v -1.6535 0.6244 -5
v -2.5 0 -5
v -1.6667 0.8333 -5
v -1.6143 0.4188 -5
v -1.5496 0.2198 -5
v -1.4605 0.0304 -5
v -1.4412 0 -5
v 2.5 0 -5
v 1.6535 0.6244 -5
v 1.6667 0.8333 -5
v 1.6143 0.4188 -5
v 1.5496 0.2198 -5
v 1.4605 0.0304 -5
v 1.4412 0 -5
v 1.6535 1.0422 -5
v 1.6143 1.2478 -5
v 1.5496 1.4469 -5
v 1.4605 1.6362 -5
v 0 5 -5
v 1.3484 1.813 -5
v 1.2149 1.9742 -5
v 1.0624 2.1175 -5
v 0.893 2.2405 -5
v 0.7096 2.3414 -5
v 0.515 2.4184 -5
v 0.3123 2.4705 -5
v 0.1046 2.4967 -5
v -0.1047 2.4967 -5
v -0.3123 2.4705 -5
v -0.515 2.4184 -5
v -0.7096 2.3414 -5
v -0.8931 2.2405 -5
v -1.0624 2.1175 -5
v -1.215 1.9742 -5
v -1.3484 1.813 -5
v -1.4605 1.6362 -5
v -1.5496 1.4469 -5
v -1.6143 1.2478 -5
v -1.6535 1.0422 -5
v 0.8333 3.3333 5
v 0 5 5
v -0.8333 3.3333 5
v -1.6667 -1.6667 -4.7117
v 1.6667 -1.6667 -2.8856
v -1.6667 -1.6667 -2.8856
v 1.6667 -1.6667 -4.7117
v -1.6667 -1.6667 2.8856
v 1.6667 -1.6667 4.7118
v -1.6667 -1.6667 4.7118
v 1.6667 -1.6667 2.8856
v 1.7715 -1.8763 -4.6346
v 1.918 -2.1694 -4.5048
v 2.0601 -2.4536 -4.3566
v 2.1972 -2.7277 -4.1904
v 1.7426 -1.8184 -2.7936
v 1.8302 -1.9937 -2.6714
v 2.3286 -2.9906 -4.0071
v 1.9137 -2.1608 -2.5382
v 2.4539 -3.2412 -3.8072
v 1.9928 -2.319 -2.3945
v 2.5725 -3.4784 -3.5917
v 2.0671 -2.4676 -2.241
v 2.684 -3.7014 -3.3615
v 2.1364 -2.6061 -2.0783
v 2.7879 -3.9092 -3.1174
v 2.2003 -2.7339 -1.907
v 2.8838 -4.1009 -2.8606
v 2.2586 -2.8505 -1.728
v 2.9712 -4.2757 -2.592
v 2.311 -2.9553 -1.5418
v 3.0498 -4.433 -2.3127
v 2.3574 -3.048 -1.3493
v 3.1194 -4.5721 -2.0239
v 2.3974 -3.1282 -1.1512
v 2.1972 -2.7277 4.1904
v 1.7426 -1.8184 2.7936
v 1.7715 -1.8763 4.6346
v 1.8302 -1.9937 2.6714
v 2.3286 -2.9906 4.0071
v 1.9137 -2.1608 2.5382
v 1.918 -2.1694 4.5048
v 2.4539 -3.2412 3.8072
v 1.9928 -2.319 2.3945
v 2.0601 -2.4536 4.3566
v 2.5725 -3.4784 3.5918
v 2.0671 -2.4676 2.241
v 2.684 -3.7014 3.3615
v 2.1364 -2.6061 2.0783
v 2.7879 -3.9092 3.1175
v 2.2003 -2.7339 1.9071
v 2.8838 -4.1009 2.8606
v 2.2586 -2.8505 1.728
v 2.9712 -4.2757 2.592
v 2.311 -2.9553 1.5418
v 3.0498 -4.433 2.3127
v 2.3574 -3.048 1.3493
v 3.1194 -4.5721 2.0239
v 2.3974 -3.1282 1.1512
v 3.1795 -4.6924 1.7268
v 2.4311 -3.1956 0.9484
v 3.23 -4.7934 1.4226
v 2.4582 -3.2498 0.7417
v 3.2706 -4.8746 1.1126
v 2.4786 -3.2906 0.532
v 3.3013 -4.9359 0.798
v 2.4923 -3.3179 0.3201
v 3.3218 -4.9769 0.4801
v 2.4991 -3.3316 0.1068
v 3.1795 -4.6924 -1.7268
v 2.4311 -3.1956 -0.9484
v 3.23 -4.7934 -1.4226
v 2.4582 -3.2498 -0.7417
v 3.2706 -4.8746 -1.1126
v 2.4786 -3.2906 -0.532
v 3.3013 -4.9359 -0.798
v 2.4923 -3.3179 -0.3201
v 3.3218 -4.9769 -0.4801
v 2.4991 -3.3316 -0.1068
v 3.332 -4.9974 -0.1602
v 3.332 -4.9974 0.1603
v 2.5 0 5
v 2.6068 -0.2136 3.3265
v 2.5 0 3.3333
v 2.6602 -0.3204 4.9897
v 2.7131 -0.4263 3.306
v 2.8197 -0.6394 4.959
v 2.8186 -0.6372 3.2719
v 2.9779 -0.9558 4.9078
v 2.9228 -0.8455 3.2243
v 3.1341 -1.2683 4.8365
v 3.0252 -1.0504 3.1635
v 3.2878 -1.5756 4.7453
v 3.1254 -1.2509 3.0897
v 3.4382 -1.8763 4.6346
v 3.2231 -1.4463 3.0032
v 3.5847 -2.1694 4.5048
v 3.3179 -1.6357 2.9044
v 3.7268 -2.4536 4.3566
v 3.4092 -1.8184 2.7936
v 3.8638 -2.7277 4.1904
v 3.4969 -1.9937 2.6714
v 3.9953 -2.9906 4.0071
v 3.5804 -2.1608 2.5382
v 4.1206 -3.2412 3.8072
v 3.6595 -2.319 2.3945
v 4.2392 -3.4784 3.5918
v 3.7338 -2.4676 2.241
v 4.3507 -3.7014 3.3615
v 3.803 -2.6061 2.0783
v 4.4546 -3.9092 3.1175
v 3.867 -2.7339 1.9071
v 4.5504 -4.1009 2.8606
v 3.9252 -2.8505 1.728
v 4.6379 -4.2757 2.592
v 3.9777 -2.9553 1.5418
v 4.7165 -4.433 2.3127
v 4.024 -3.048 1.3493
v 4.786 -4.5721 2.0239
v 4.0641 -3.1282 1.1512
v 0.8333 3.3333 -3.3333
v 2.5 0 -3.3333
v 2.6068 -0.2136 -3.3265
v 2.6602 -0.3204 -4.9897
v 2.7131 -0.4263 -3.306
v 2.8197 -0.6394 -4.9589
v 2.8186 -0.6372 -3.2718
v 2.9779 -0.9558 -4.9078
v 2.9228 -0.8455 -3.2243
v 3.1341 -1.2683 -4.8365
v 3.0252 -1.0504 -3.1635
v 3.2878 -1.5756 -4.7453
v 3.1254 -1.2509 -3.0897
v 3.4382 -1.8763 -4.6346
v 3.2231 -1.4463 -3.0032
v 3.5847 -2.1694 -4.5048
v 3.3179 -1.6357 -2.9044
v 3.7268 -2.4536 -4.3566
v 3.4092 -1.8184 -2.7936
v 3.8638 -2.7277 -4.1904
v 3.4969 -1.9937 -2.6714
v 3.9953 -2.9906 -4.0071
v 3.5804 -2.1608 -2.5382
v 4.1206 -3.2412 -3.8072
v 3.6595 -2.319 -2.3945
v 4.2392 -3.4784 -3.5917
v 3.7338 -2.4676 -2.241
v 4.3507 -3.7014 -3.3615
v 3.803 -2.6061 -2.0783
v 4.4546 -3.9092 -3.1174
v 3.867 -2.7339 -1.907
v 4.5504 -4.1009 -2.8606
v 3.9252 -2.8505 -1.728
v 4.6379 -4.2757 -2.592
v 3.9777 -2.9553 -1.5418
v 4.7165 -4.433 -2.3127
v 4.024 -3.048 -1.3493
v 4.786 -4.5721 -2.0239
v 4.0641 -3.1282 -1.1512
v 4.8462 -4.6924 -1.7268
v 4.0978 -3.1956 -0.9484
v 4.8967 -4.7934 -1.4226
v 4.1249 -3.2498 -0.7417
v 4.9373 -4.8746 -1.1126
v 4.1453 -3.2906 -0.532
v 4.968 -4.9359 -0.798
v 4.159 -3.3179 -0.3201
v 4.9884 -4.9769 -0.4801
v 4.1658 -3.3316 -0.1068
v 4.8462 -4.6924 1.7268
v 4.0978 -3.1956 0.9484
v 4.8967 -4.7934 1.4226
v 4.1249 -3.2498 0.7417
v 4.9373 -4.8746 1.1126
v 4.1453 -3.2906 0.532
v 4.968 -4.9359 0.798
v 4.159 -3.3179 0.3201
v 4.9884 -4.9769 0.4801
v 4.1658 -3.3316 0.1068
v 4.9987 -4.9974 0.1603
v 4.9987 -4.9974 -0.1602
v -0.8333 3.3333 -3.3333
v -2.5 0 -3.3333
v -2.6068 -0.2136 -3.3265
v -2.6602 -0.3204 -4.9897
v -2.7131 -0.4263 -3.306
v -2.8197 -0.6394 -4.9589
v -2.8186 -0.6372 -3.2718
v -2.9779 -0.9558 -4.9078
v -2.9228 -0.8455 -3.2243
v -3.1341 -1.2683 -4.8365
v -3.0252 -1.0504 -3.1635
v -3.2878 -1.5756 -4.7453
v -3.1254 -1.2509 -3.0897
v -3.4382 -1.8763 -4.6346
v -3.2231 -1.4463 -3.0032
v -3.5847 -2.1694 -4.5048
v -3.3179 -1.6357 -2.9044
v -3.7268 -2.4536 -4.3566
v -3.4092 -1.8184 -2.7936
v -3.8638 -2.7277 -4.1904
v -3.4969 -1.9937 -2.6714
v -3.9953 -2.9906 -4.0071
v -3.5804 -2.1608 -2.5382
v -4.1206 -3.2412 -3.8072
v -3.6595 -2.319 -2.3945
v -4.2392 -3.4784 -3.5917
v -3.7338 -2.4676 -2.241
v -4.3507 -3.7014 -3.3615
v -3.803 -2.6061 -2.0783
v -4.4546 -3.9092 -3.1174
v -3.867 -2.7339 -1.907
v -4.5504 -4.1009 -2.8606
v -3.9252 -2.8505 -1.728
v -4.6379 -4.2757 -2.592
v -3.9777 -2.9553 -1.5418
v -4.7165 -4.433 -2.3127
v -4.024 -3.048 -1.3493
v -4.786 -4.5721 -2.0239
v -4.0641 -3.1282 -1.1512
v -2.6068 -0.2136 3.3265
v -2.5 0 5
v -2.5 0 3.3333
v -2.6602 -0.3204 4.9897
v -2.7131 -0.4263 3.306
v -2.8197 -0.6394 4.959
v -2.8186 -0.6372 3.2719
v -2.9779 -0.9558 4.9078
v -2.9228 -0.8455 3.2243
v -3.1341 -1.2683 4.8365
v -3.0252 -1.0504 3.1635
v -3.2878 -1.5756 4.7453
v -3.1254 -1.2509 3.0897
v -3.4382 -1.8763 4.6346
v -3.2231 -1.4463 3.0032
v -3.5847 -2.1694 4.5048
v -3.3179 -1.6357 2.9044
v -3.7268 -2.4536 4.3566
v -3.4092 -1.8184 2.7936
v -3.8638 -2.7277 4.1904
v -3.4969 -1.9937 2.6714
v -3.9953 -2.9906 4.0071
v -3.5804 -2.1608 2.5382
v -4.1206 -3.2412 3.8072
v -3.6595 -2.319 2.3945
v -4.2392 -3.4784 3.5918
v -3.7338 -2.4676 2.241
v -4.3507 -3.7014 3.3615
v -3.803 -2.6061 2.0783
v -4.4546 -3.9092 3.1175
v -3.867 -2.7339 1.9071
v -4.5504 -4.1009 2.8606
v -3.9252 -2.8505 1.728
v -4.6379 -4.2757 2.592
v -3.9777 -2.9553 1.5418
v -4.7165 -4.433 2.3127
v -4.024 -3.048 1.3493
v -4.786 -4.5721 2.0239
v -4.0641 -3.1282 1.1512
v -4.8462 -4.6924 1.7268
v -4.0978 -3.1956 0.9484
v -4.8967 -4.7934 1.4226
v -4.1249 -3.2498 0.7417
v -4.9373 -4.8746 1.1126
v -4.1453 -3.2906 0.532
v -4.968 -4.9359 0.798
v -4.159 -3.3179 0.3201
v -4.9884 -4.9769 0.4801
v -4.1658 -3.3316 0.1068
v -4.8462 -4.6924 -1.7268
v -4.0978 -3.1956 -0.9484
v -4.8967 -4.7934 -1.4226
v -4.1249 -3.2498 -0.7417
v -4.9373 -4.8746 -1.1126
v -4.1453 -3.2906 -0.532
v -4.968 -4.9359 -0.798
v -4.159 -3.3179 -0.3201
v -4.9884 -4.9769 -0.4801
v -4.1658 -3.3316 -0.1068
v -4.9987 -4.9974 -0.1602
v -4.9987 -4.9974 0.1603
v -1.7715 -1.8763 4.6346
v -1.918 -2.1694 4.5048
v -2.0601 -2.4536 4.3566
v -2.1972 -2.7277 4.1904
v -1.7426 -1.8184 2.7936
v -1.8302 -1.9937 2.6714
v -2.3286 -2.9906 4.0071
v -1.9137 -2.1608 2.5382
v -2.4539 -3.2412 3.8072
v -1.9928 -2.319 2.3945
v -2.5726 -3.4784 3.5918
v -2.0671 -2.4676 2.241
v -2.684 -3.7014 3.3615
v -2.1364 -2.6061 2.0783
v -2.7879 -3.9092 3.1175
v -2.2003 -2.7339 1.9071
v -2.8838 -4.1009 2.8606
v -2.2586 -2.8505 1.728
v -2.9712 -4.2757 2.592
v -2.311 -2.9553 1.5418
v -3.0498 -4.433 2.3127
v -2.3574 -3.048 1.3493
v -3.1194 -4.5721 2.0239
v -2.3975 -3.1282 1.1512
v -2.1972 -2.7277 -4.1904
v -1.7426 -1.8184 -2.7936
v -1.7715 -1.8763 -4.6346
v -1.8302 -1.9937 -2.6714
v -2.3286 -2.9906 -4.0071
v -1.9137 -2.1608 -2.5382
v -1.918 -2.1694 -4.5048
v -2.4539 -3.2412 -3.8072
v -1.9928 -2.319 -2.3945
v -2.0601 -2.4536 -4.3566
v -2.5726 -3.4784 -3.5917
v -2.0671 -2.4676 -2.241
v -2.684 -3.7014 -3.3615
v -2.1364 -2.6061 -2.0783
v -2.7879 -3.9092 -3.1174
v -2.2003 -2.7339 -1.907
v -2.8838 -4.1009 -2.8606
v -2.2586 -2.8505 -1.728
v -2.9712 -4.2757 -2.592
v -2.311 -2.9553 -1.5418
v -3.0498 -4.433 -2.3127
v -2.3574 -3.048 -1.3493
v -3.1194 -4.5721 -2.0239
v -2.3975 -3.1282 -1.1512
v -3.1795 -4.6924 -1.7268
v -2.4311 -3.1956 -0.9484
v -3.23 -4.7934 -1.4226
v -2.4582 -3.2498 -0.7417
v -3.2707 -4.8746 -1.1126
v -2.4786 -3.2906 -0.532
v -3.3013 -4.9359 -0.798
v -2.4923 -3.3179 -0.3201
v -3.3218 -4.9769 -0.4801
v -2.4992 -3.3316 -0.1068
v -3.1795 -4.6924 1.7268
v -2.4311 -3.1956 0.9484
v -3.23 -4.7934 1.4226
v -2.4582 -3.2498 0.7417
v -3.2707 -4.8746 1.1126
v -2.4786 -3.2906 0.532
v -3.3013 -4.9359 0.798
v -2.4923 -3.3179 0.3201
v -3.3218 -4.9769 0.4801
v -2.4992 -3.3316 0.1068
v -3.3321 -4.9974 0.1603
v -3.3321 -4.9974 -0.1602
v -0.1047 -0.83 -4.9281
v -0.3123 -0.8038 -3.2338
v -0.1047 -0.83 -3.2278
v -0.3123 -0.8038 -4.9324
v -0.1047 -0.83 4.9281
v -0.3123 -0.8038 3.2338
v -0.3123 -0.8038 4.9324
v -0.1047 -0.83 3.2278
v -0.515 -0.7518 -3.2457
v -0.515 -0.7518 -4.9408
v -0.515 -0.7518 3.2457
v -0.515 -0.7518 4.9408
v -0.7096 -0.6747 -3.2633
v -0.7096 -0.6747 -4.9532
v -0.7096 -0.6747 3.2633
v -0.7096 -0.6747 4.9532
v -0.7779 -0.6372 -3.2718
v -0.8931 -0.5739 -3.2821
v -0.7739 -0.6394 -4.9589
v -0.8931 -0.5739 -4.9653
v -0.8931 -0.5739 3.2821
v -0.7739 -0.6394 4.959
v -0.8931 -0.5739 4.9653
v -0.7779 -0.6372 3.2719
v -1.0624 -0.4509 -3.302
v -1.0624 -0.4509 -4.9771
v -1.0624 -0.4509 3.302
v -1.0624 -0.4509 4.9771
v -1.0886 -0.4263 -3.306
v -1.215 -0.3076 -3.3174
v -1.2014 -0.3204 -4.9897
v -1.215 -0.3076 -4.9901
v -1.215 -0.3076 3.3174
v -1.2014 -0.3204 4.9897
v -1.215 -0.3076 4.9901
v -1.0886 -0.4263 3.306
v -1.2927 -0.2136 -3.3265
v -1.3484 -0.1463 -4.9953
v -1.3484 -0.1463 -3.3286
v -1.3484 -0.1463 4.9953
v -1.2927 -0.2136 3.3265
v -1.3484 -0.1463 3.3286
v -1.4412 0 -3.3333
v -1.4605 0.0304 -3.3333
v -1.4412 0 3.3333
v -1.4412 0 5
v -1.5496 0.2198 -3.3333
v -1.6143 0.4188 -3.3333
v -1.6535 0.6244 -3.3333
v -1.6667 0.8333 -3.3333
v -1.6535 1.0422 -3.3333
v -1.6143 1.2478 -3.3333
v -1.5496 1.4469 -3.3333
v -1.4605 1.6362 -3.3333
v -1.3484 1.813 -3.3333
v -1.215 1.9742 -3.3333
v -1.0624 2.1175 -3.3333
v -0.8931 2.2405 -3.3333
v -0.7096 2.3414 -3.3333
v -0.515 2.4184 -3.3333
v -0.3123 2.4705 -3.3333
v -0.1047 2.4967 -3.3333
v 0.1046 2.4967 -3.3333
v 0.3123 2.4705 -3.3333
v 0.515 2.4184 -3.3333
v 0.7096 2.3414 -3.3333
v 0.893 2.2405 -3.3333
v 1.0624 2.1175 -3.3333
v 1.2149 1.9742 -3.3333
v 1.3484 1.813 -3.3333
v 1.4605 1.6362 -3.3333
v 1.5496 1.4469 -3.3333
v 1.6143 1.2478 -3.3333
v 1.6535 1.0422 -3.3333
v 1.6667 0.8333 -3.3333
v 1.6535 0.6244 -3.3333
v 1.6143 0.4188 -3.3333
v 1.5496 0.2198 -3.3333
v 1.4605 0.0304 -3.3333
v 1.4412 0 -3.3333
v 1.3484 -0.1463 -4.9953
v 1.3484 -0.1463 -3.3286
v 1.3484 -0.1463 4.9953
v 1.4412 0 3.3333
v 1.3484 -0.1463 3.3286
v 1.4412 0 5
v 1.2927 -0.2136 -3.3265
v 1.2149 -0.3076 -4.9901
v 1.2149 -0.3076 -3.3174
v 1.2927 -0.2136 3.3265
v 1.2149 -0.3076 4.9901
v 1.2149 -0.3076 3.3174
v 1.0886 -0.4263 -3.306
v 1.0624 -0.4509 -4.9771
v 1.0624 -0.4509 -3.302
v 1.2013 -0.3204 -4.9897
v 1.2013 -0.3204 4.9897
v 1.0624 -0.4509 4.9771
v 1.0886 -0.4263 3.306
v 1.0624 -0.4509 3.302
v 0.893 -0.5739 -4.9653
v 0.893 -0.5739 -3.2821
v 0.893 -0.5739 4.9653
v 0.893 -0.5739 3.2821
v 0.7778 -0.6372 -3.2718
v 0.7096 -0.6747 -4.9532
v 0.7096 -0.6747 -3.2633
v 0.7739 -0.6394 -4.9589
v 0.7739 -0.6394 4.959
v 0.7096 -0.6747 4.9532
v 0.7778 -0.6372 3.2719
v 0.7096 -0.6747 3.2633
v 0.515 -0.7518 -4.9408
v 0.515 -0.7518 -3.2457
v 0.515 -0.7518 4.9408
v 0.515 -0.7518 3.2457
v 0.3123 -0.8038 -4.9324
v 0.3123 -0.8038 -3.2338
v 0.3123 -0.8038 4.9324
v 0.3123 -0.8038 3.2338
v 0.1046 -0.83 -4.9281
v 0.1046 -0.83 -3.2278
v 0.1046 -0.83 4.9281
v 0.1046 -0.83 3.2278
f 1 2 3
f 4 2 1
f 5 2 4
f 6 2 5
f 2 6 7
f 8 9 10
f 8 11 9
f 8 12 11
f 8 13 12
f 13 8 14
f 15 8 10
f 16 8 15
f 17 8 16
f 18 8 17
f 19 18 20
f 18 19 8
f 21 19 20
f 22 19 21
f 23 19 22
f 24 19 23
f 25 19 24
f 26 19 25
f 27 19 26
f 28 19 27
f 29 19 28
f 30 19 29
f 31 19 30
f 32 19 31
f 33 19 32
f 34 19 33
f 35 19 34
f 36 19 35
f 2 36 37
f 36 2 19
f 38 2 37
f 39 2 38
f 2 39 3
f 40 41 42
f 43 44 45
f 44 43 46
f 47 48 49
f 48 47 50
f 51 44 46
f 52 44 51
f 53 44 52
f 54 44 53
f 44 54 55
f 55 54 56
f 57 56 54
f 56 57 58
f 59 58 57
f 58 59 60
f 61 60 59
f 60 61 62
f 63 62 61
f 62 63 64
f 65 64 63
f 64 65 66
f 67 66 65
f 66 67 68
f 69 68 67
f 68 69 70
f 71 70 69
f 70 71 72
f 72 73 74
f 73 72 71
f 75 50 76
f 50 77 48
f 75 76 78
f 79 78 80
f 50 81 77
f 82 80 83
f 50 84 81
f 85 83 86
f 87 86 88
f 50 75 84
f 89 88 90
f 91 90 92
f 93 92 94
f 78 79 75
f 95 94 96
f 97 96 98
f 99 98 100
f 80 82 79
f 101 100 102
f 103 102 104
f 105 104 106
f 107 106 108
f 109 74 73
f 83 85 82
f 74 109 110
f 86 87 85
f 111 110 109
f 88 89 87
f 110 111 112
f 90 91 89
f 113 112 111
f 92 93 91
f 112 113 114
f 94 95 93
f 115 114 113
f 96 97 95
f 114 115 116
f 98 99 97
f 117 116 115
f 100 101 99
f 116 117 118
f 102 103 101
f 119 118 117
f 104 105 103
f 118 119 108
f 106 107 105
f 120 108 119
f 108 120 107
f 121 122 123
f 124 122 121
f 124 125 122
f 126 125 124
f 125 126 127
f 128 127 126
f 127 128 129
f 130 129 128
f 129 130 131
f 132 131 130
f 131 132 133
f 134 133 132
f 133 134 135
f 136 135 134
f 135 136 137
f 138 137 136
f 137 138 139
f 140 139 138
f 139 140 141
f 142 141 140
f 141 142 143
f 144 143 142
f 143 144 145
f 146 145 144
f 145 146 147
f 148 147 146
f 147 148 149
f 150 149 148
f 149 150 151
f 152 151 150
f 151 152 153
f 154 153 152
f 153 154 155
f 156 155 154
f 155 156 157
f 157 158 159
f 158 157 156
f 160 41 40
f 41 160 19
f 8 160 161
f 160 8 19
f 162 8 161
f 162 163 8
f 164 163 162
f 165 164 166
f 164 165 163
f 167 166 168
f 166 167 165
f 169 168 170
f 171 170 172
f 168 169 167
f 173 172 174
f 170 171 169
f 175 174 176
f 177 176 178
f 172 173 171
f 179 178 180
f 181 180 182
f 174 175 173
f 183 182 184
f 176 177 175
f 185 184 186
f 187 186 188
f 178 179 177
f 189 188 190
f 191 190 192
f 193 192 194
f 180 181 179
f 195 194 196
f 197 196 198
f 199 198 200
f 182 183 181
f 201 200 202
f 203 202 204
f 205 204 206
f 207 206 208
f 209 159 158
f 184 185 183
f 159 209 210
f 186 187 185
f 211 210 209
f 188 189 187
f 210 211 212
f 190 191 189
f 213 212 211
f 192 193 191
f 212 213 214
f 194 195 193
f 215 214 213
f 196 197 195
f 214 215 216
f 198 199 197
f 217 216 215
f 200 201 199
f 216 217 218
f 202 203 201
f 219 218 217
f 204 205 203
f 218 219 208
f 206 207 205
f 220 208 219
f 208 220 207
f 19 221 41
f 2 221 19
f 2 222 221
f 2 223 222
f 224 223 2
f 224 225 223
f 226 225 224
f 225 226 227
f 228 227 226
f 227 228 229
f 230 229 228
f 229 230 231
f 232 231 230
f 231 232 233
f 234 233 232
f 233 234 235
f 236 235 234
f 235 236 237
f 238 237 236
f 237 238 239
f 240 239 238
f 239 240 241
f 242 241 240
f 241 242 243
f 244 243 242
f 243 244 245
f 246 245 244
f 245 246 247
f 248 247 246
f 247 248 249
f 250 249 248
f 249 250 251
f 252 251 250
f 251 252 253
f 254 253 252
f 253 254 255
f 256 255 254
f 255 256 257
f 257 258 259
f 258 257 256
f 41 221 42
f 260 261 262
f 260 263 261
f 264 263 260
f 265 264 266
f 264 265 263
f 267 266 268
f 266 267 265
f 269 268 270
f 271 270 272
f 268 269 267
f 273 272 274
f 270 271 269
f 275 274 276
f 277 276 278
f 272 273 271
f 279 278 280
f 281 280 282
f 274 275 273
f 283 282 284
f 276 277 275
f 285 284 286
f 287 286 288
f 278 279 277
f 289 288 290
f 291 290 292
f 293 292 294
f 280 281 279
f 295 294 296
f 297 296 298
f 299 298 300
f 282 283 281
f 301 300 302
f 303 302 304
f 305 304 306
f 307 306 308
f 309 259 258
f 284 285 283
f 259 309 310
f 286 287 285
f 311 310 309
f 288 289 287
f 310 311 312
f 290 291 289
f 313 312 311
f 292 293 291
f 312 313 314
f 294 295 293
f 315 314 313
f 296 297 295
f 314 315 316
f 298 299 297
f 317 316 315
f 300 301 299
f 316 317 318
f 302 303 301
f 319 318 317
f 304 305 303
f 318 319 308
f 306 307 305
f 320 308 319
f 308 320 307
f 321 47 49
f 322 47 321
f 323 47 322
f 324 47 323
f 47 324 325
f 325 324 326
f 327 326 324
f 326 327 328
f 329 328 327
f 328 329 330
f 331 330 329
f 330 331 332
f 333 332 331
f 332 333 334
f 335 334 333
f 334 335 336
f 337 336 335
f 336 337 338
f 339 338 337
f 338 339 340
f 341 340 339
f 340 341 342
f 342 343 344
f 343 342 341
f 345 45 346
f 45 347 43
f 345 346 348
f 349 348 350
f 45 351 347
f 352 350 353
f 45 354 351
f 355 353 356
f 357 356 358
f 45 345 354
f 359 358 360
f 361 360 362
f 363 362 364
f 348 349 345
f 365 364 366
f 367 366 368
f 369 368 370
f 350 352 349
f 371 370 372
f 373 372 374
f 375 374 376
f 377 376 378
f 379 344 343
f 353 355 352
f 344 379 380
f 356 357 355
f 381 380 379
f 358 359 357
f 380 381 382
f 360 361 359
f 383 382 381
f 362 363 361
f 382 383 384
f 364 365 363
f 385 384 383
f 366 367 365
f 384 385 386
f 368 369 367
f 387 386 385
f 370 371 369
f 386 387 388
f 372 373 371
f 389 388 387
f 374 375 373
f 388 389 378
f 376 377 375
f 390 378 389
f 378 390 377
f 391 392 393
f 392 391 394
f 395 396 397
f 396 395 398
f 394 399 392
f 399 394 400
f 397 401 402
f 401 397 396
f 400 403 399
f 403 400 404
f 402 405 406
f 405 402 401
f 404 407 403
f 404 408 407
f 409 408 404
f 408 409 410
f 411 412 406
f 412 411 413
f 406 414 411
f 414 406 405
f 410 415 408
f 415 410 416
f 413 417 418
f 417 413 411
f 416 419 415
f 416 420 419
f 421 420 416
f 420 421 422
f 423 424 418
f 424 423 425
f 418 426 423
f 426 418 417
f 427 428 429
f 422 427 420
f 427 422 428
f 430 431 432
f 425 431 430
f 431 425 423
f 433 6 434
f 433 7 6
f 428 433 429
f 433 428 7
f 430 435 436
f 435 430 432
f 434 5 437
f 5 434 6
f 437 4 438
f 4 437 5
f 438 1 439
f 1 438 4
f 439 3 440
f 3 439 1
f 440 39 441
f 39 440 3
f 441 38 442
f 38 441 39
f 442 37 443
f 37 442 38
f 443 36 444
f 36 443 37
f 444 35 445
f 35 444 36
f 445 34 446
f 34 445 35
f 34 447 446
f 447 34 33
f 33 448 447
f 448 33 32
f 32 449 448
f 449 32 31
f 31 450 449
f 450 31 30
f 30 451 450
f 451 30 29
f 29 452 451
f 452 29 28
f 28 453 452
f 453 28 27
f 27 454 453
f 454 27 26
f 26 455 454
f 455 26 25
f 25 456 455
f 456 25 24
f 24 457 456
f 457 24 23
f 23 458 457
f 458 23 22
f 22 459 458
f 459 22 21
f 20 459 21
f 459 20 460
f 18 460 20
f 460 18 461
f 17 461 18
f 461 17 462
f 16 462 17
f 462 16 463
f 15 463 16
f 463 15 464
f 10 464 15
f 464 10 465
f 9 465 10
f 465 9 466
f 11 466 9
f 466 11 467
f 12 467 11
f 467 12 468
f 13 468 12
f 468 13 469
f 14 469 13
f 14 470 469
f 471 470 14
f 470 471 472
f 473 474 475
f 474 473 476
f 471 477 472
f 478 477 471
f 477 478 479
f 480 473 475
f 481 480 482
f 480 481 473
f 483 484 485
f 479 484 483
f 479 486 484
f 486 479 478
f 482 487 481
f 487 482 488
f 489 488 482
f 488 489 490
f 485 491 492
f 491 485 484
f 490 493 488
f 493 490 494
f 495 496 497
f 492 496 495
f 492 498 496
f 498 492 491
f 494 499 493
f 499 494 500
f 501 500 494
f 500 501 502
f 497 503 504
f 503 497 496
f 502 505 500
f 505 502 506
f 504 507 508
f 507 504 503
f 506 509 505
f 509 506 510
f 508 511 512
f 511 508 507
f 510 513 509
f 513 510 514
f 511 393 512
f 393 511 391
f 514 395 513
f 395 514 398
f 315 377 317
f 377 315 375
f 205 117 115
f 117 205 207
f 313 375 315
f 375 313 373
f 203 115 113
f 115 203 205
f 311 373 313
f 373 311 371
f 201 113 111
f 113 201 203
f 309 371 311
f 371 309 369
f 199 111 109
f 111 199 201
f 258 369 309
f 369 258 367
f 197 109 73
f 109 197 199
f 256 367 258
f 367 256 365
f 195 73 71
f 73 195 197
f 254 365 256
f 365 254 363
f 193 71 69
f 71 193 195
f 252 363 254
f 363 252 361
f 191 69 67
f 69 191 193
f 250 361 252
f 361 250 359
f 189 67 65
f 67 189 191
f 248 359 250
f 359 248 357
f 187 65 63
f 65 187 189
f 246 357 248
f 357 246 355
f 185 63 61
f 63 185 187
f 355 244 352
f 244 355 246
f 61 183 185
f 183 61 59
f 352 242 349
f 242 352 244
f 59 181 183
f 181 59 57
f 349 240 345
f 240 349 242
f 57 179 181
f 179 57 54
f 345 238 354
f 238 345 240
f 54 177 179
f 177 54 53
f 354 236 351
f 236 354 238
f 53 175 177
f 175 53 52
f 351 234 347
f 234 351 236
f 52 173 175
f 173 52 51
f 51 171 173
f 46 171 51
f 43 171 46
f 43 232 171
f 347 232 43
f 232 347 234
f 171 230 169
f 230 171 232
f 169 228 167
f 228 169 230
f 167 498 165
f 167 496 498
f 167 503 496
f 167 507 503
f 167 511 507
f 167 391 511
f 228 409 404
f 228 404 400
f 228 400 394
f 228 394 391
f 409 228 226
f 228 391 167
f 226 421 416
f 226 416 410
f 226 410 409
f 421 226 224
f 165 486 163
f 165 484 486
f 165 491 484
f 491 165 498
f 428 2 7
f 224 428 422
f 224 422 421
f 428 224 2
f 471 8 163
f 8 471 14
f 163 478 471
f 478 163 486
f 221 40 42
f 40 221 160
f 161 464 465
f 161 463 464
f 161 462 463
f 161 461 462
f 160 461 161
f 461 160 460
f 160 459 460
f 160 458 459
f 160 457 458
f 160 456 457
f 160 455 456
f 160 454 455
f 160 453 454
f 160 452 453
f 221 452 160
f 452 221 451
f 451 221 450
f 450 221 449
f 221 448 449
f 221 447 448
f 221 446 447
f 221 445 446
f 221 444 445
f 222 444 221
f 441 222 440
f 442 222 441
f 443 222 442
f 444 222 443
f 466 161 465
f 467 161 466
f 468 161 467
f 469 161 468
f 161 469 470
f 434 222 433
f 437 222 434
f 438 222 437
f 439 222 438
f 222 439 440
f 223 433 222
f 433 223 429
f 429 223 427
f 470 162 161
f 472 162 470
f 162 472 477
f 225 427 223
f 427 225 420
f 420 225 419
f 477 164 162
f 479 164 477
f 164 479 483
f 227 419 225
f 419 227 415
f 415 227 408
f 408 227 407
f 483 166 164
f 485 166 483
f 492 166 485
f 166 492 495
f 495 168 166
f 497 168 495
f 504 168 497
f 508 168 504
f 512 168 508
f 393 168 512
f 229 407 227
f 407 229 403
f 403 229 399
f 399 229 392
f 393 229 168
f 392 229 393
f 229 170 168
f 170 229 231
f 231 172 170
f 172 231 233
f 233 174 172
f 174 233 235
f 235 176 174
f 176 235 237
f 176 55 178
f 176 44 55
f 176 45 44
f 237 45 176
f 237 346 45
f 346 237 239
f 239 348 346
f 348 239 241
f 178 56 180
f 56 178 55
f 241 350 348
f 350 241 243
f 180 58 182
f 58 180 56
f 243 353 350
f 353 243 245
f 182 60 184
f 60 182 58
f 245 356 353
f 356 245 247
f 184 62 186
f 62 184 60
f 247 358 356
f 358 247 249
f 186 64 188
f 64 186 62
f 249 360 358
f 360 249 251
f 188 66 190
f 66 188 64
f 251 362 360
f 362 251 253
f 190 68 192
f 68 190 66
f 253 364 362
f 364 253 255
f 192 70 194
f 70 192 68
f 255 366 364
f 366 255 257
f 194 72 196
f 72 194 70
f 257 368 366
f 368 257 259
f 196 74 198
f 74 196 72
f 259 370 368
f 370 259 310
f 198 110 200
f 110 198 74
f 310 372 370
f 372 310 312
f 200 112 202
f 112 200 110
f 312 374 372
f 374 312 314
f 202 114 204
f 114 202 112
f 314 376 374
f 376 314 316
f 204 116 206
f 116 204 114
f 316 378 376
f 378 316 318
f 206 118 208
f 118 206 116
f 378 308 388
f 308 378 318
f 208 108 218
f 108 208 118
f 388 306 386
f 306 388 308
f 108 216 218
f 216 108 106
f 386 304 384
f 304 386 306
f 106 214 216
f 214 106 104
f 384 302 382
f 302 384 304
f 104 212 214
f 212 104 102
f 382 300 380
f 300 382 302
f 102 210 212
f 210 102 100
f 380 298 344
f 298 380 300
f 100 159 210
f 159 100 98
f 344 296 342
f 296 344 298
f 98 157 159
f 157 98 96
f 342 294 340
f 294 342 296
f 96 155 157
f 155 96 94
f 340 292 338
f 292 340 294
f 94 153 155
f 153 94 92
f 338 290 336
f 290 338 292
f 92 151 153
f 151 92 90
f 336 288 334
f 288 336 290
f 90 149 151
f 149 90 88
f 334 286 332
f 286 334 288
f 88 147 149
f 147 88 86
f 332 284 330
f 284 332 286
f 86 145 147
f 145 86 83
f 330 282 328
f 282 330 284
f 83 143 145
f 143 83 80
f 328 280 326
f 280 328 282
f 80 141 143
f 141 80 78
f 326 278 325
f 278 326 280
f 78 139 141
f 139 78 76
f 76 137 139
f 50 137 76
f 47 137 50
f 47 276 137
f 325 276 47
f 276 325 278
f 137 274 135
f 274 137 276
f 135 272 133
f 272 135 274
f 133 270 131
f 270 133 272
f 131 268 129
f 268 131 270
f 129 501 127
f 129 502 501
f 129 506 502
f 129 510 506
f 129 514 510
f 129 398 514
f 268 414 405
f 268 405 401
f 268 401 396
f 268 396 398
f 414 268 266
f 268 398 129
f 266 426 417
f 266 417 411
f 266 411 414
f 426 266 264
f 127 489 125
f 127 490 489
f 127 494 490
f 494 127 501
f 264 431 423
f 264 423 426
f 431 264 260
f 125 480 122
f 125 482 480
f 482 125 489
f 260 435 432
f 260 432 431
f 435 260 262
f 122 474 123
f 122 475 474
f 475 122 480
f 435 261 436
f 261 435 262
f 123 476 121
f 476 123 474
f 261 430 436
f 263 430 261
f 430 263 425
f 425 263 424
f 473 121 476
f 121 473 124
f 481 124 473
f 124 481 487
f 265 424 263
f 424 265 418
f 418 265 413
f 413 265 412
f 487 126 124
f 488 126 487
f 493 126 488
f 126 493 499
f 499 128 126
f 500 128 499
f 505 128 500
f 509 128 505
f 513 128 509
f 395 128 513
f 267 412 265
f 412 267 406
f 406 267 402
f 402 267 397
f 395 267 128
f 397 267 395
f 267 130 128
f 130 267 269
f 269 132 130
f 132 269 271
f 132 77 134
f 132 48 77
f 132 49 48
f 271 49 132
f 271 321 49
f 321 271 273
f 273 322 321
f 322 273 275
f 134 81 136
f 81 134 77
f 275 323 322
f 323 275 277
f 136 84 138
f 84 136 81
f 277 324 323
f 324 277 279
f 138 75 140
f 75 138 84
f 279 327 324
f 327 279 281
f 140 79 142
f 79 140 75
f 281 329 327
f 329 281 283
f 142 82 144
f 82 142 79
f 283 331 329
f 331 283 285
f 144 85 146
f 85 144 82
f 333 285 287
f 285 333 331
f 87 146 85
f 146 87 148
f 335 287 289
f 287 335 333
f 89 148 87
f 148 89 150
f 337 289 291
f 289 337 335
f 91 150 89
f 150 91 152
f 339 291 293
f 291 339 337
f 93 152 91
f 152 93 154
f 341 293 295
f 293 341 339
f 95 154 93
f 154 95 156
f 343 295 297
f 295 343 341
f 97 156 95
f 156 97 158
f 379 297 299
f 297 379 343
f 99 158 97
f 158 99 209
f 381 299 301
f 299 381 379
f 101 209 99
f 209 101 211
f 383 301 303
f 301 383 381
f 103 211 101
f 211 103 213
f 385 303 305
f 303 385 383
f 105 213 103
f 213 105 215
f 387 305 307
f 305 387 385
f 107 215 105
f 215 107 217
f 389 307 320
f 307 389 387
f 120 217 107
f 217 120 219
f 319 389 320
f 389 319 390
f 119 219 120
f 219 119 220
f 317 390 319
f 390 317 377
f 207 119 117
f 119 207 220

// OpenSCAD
// Generated by SolidPython 1.1.3 on 2025-02-25 01:33:37
$fn=50;


intersection() {
	translate(v = [-5.0000000000, -5.0000000000, -5.0000000000]) {
		linear_extrude(height = 10) {
			difference() {
				polygon(points = [[0, 0], [5.0000000000, 10], [10, 0], [8.3333333333, 0], [6.6666666667, 3.3333333333], [3.3333333333, 3.3333333333], [1.6666666667, 0]]);
				translate(v = [5.0000000000, 5.8333333333]) {
					circle(r = 1.6666666667);
				}
			}
		}
	}
	rotate(a = 90, v = [0, 1, 0]) {
		translate(v = [-5.0000000000, -5.0000000000, -5.0000000000]) {
			linear_extrude(height = 10) {
				polygon(points = [[8.3333333333, 5.0000000000], [8.3264846425, 4.7864326001], [8.3059667127, 4.5737427944], [8.2718638566, 4.3628045710], [8.2243162101, 4.1544847203], [8.1635191567, 3.9496392733], [8.0897225245, 3.7491099837], [8.0032295597, 3.5537208696], [7.9043956804, 3.3642748267], [7.7936270163, 3.1815503293], [7.6713787396, 3.0062982317], [7.5381531946, 2.8392386823], [7.3944978337, 2.6810581647], [7.2410029675, 2.5324066764], [7.0782993395, 2.3938950584], [6.9070555337, 2.2660924847], [6.7279752277, 2.1495241233], [6.5417943008, 2.0446689788], [6.3492778104, 1.9519579233], [6.1512168481, 1.8717719265], [5.9484252888, 1.8044404899], [5.7417364465, 1.7502402927], [5.5319996501, 1.7093940553], [5.3200767530, 1.6820696235], [5.1068385919, 1.6683792793], [4.8931614081, 1.6683792793], [4.6799232470, 1.6820696235], [4.4680003499, 1.7093940553], [4.2582635535, 1.7502402927], [4.0515747112, 1.8044404899], [3.8487831519, 1.8717719265], [3.6507221896, 1.9519579233], [3.4582056992, 2.0446689788], [3.2720247723, 2.1495241233], [3.0929444663, 2.2660924847], [2.9217006605, 2.3938950584], [2.7589970325, 2.5324066764], [2.6055021663, 2.6810581647], [2.4618468054, 2.8392386823], [2.3286212604, 3.0062982317], [2.2063729837, 3.1815503293], [2.0956043196, 3.3642748267], [1.9967704403, 3.5537208696], [1.9102774755, 3.7491099837], [1.8364808433, 3.9496392733], [1.7756837899, 4.1544847203], [1.7281361434, 4.3628045710], [1.6940332873, 4.5737427944], [1.6735153575, 4.7864326001], [1.6666666667, 5.0000000000], [0.0000000000, 5.0000000000], [0.0102730362, 4.6796489001], [0.0410499309, 4.3606141916], [0.0922042150, 4.0442068565], [0.1635256848, 3.7317270805], [0.2547212649, 3.4244589099], [0.3654162133, 3.1236649756], [0.4951556605, 2.8305813044], [0.6434064794, 2.5464122400], [0.8095594755, 2.2723254939], [0.9929318907, 2.0094473475], [1.1927702082, 1.7588580235], [1.4082532495, 1.5215872470], [1.6384955487, 1.2986100146], [1.8825509907, 1.0908425877], [2.1394166994, 0.8991387270], [2.4080371584, 0.7242861850], [2.6873085488, 0.5670034681], [2.9760832844, 0.4279368849], [3.2731747279, 0.3076578898], [3.5773620668, 0.2066607348], [3.8873953302, 0.1253604391], [4.2020005248, 0.0640910829], [4.5198848705, 0.0231044353], [4.8397421121, 0.0025689190], [5.1602578879, 0.0025689190], [5.4801151295, 0.0231044353], [5.7979994752, 0.0640910829], [6.1126046698, 0.1253604391], [6.4226379332, 0.2066607348], [6.7268252721, 0.3076578898], [7.0239167156, 0.4279368849], [7.3126914512, 0.5670034681], [7.5919628416, 0.7242861850], [7.8605833006, 0.8991387270], [8.1174490093, 1.0908425877], [8.3615044513, 1.2986100146], [8.5917467505, 1.5215872470], [8.8072297918, 1.7588580235], [9.0070681093, 2.0094473475], [9.1904405245, 2.2723254939], [9.3565935206, 2.5464122400], [9.5048443395, 2.8305813044], [9.6345837867, 3.1236649756], [9.7452787351, 3.4244589099], [9.8364743152, 3.7317270805], [9.9077957850, 4.0442068565], [9.9589500691, 4.3606141916], [9.9897269638, 4.6796489001], [10.0000000000, 5.0000000000], [10, 10], [0, 10], [0, 8.3333333333], [8.3333333333, 8.3333333333]]);
			}
		}
	}
}
/***********************************************
*********      SolidPython code:      **********
************************************************
 
from solid import *
from solid.utils import *

import math
import matplotlib.pyplot as plt
import subprocess
import os
import grok_letters as grok
import grok_think as grok_think
import letters as let
import o1_letters as o1

def arc_points(radius, start_angle, end_angle, center=[0,0], num_points=50):
    angles = [start_angle + i * (end_angle - start_angle) / (num_points - 1)
              for i in range(num_points)]
    points = [
        (center[0] + radius * math.cos(math.radians(angle)),
         center[1] + radius * math.sin(math.radians(angle)))
        for angle in angles
    ]
    return points

class Hole:
    def __init__(self, radius, x, y):
        """
        Hole defined by:
        :param x: x dimension for center point of the circle as a ratio of letter height
        :param y: y dimension for center point of the circle as a ratio of letter height
        :param radius: radius of circle as a ratio of letter height
        """
        self.x = x
        self.y = y
        self.radius = radius

class Letter2D:
    def __init__(self, letter, scale):
        self.letter = letter
        self.scale = scale
        self.shape = self.generate()
    
    def get_letter_points(self):
        points = getattr(let, self.letter)
        # points = getattr(o1, self.letter)
        # points = getattr(grok, self.letter)
        scaled_points = [(point[0] * self.scale, point[1] * self.scale) for point in points]
        return scaled_points

    def get_letter_holes(self):
        holes = []
        if self.letter == "A": 
            holes = [Hole(1/6, 1/2, 7/12)]
        if self.letter == "B":
            holes = [Hole(1/6, 1/2, 3/4), Hole(1/6, 1/2, 1/4)]
        if self.letter == "D":
            holes = [Hole(1/3, 1/2, 1/2)]

        scaled_holes = [Hole(hole.radius*self.scale, hole.x*self.scale, hole.y*self.scale) for hole in holes]
        return scaled_holes

    
    def generate(self):
        shape = polygon(points=self.get_letter_points())
        holes = self.get_letter_holes()

        if holes:
            for hole in holes:
                circle_hole = circle(r=hole.radius)
                positioned_hole = translate([hole.x, hole.y])(circle_hole)
                shape = difference()(shape, positioned_hole)
        return shape
    

    def render(self):
        scad_render_to_file(self.shape, f"output/{self.name}.scad", file_header='$fn=50;')
        subprocess.run(["C:\\Program Files\\OpenSCAD\\openscad.exe", "-o", f"output\\{self.name}.stl", f"output\\{self.name}.scad"])


class TwoLetter3D:
    def __init__(self, height, letterA, letterB=None):
        self.height = height
        self.letterA = letterA
        self.letterB = letterB
    

    def generate_3d_letter(self, letter):
        letter = letter.upper()
        # TODO: add catch here for is letter is not a letter
        shape = Letter2D(letter, self.height).generate()
        shape_3d = linear_extrude(height=self.height)(shape)
        centered_shape_3d = translate([-self.height/2, -self.height/2, -self.height/2])(shape_3d)
        return centered_shape_3d


    def render(self):
        letterA3D = self.generate_3d_letter(self.letterA)

        if self.letterB:
            letterB3D = self.generate_3d_letter(self.letterB)
            letterB3D = rotate(a=90, v=[0,1,0])(letterB3D)

            combined = intersection()(letterA3D, letterB3D)
            file_name = self.letterA + self.letterB
            scad_render_to_file(combined, f"output/{file_name}.scad", file_header='$fn=50;')
            subprocess.run(["C:\\Program Files\\OpenSCAD\\openscad.exe", "-o", f"output\\{file_name}.stl", f"output\\{file_name}.scad"])
            return
        else:
            # file_name = "o1_" + self.letterA
            # file_name = "grok_think_" + self.letterA
            file_name = self.letterA
            # file_name = "grok_" + self.letterA
            scad_render_to_file(letterA3D, f"output/{file_name}.scad", file_header='$fn=50;')
            subprocess.run(["C:\\Program Files\\OpenSCAD\\openscad.exe", "-o", f"output\\{file_name}.stl", f"output\\{file_name}.scad"])
            # subprocess.run(["openscad", "-o", f"output\\{file_name}.png", f"output\\{file_name}.scad", "--imgsize=800,600", "--autocenter"])
            subprocess.run(["openscad", "-o", f"output\\{file_name}.png", f"output\\{file_name}.scad", "--imgsize=800,600", "--camera=0,0,30,0,0,0", "--viewall", "--autocenter", "--projection=o"])
            os.remove(f"output/{file_name}.scad")
            return
                


if __name__ == "__main__":
    os.makedirs("output", exist_ok=True)

    # # Generate a letter
    # letter = input()
    # shape = TwoLetter3D(10, letter)
    # shape.render()
    
    letters = [chr(x) for x in range(ord('A'), ord('j') + 1)]

    # Generate all combos
    for letter in letters:
        for other_letter in letters:
            shape = TwoLetter3D(10, letter, other_letter)
            shape.render()

    # # Generate all letters
    # for letter in letters:
    #     shape = TwoLetter3D(10, letter)
    #     shape.render()
 
 
************************************************/
